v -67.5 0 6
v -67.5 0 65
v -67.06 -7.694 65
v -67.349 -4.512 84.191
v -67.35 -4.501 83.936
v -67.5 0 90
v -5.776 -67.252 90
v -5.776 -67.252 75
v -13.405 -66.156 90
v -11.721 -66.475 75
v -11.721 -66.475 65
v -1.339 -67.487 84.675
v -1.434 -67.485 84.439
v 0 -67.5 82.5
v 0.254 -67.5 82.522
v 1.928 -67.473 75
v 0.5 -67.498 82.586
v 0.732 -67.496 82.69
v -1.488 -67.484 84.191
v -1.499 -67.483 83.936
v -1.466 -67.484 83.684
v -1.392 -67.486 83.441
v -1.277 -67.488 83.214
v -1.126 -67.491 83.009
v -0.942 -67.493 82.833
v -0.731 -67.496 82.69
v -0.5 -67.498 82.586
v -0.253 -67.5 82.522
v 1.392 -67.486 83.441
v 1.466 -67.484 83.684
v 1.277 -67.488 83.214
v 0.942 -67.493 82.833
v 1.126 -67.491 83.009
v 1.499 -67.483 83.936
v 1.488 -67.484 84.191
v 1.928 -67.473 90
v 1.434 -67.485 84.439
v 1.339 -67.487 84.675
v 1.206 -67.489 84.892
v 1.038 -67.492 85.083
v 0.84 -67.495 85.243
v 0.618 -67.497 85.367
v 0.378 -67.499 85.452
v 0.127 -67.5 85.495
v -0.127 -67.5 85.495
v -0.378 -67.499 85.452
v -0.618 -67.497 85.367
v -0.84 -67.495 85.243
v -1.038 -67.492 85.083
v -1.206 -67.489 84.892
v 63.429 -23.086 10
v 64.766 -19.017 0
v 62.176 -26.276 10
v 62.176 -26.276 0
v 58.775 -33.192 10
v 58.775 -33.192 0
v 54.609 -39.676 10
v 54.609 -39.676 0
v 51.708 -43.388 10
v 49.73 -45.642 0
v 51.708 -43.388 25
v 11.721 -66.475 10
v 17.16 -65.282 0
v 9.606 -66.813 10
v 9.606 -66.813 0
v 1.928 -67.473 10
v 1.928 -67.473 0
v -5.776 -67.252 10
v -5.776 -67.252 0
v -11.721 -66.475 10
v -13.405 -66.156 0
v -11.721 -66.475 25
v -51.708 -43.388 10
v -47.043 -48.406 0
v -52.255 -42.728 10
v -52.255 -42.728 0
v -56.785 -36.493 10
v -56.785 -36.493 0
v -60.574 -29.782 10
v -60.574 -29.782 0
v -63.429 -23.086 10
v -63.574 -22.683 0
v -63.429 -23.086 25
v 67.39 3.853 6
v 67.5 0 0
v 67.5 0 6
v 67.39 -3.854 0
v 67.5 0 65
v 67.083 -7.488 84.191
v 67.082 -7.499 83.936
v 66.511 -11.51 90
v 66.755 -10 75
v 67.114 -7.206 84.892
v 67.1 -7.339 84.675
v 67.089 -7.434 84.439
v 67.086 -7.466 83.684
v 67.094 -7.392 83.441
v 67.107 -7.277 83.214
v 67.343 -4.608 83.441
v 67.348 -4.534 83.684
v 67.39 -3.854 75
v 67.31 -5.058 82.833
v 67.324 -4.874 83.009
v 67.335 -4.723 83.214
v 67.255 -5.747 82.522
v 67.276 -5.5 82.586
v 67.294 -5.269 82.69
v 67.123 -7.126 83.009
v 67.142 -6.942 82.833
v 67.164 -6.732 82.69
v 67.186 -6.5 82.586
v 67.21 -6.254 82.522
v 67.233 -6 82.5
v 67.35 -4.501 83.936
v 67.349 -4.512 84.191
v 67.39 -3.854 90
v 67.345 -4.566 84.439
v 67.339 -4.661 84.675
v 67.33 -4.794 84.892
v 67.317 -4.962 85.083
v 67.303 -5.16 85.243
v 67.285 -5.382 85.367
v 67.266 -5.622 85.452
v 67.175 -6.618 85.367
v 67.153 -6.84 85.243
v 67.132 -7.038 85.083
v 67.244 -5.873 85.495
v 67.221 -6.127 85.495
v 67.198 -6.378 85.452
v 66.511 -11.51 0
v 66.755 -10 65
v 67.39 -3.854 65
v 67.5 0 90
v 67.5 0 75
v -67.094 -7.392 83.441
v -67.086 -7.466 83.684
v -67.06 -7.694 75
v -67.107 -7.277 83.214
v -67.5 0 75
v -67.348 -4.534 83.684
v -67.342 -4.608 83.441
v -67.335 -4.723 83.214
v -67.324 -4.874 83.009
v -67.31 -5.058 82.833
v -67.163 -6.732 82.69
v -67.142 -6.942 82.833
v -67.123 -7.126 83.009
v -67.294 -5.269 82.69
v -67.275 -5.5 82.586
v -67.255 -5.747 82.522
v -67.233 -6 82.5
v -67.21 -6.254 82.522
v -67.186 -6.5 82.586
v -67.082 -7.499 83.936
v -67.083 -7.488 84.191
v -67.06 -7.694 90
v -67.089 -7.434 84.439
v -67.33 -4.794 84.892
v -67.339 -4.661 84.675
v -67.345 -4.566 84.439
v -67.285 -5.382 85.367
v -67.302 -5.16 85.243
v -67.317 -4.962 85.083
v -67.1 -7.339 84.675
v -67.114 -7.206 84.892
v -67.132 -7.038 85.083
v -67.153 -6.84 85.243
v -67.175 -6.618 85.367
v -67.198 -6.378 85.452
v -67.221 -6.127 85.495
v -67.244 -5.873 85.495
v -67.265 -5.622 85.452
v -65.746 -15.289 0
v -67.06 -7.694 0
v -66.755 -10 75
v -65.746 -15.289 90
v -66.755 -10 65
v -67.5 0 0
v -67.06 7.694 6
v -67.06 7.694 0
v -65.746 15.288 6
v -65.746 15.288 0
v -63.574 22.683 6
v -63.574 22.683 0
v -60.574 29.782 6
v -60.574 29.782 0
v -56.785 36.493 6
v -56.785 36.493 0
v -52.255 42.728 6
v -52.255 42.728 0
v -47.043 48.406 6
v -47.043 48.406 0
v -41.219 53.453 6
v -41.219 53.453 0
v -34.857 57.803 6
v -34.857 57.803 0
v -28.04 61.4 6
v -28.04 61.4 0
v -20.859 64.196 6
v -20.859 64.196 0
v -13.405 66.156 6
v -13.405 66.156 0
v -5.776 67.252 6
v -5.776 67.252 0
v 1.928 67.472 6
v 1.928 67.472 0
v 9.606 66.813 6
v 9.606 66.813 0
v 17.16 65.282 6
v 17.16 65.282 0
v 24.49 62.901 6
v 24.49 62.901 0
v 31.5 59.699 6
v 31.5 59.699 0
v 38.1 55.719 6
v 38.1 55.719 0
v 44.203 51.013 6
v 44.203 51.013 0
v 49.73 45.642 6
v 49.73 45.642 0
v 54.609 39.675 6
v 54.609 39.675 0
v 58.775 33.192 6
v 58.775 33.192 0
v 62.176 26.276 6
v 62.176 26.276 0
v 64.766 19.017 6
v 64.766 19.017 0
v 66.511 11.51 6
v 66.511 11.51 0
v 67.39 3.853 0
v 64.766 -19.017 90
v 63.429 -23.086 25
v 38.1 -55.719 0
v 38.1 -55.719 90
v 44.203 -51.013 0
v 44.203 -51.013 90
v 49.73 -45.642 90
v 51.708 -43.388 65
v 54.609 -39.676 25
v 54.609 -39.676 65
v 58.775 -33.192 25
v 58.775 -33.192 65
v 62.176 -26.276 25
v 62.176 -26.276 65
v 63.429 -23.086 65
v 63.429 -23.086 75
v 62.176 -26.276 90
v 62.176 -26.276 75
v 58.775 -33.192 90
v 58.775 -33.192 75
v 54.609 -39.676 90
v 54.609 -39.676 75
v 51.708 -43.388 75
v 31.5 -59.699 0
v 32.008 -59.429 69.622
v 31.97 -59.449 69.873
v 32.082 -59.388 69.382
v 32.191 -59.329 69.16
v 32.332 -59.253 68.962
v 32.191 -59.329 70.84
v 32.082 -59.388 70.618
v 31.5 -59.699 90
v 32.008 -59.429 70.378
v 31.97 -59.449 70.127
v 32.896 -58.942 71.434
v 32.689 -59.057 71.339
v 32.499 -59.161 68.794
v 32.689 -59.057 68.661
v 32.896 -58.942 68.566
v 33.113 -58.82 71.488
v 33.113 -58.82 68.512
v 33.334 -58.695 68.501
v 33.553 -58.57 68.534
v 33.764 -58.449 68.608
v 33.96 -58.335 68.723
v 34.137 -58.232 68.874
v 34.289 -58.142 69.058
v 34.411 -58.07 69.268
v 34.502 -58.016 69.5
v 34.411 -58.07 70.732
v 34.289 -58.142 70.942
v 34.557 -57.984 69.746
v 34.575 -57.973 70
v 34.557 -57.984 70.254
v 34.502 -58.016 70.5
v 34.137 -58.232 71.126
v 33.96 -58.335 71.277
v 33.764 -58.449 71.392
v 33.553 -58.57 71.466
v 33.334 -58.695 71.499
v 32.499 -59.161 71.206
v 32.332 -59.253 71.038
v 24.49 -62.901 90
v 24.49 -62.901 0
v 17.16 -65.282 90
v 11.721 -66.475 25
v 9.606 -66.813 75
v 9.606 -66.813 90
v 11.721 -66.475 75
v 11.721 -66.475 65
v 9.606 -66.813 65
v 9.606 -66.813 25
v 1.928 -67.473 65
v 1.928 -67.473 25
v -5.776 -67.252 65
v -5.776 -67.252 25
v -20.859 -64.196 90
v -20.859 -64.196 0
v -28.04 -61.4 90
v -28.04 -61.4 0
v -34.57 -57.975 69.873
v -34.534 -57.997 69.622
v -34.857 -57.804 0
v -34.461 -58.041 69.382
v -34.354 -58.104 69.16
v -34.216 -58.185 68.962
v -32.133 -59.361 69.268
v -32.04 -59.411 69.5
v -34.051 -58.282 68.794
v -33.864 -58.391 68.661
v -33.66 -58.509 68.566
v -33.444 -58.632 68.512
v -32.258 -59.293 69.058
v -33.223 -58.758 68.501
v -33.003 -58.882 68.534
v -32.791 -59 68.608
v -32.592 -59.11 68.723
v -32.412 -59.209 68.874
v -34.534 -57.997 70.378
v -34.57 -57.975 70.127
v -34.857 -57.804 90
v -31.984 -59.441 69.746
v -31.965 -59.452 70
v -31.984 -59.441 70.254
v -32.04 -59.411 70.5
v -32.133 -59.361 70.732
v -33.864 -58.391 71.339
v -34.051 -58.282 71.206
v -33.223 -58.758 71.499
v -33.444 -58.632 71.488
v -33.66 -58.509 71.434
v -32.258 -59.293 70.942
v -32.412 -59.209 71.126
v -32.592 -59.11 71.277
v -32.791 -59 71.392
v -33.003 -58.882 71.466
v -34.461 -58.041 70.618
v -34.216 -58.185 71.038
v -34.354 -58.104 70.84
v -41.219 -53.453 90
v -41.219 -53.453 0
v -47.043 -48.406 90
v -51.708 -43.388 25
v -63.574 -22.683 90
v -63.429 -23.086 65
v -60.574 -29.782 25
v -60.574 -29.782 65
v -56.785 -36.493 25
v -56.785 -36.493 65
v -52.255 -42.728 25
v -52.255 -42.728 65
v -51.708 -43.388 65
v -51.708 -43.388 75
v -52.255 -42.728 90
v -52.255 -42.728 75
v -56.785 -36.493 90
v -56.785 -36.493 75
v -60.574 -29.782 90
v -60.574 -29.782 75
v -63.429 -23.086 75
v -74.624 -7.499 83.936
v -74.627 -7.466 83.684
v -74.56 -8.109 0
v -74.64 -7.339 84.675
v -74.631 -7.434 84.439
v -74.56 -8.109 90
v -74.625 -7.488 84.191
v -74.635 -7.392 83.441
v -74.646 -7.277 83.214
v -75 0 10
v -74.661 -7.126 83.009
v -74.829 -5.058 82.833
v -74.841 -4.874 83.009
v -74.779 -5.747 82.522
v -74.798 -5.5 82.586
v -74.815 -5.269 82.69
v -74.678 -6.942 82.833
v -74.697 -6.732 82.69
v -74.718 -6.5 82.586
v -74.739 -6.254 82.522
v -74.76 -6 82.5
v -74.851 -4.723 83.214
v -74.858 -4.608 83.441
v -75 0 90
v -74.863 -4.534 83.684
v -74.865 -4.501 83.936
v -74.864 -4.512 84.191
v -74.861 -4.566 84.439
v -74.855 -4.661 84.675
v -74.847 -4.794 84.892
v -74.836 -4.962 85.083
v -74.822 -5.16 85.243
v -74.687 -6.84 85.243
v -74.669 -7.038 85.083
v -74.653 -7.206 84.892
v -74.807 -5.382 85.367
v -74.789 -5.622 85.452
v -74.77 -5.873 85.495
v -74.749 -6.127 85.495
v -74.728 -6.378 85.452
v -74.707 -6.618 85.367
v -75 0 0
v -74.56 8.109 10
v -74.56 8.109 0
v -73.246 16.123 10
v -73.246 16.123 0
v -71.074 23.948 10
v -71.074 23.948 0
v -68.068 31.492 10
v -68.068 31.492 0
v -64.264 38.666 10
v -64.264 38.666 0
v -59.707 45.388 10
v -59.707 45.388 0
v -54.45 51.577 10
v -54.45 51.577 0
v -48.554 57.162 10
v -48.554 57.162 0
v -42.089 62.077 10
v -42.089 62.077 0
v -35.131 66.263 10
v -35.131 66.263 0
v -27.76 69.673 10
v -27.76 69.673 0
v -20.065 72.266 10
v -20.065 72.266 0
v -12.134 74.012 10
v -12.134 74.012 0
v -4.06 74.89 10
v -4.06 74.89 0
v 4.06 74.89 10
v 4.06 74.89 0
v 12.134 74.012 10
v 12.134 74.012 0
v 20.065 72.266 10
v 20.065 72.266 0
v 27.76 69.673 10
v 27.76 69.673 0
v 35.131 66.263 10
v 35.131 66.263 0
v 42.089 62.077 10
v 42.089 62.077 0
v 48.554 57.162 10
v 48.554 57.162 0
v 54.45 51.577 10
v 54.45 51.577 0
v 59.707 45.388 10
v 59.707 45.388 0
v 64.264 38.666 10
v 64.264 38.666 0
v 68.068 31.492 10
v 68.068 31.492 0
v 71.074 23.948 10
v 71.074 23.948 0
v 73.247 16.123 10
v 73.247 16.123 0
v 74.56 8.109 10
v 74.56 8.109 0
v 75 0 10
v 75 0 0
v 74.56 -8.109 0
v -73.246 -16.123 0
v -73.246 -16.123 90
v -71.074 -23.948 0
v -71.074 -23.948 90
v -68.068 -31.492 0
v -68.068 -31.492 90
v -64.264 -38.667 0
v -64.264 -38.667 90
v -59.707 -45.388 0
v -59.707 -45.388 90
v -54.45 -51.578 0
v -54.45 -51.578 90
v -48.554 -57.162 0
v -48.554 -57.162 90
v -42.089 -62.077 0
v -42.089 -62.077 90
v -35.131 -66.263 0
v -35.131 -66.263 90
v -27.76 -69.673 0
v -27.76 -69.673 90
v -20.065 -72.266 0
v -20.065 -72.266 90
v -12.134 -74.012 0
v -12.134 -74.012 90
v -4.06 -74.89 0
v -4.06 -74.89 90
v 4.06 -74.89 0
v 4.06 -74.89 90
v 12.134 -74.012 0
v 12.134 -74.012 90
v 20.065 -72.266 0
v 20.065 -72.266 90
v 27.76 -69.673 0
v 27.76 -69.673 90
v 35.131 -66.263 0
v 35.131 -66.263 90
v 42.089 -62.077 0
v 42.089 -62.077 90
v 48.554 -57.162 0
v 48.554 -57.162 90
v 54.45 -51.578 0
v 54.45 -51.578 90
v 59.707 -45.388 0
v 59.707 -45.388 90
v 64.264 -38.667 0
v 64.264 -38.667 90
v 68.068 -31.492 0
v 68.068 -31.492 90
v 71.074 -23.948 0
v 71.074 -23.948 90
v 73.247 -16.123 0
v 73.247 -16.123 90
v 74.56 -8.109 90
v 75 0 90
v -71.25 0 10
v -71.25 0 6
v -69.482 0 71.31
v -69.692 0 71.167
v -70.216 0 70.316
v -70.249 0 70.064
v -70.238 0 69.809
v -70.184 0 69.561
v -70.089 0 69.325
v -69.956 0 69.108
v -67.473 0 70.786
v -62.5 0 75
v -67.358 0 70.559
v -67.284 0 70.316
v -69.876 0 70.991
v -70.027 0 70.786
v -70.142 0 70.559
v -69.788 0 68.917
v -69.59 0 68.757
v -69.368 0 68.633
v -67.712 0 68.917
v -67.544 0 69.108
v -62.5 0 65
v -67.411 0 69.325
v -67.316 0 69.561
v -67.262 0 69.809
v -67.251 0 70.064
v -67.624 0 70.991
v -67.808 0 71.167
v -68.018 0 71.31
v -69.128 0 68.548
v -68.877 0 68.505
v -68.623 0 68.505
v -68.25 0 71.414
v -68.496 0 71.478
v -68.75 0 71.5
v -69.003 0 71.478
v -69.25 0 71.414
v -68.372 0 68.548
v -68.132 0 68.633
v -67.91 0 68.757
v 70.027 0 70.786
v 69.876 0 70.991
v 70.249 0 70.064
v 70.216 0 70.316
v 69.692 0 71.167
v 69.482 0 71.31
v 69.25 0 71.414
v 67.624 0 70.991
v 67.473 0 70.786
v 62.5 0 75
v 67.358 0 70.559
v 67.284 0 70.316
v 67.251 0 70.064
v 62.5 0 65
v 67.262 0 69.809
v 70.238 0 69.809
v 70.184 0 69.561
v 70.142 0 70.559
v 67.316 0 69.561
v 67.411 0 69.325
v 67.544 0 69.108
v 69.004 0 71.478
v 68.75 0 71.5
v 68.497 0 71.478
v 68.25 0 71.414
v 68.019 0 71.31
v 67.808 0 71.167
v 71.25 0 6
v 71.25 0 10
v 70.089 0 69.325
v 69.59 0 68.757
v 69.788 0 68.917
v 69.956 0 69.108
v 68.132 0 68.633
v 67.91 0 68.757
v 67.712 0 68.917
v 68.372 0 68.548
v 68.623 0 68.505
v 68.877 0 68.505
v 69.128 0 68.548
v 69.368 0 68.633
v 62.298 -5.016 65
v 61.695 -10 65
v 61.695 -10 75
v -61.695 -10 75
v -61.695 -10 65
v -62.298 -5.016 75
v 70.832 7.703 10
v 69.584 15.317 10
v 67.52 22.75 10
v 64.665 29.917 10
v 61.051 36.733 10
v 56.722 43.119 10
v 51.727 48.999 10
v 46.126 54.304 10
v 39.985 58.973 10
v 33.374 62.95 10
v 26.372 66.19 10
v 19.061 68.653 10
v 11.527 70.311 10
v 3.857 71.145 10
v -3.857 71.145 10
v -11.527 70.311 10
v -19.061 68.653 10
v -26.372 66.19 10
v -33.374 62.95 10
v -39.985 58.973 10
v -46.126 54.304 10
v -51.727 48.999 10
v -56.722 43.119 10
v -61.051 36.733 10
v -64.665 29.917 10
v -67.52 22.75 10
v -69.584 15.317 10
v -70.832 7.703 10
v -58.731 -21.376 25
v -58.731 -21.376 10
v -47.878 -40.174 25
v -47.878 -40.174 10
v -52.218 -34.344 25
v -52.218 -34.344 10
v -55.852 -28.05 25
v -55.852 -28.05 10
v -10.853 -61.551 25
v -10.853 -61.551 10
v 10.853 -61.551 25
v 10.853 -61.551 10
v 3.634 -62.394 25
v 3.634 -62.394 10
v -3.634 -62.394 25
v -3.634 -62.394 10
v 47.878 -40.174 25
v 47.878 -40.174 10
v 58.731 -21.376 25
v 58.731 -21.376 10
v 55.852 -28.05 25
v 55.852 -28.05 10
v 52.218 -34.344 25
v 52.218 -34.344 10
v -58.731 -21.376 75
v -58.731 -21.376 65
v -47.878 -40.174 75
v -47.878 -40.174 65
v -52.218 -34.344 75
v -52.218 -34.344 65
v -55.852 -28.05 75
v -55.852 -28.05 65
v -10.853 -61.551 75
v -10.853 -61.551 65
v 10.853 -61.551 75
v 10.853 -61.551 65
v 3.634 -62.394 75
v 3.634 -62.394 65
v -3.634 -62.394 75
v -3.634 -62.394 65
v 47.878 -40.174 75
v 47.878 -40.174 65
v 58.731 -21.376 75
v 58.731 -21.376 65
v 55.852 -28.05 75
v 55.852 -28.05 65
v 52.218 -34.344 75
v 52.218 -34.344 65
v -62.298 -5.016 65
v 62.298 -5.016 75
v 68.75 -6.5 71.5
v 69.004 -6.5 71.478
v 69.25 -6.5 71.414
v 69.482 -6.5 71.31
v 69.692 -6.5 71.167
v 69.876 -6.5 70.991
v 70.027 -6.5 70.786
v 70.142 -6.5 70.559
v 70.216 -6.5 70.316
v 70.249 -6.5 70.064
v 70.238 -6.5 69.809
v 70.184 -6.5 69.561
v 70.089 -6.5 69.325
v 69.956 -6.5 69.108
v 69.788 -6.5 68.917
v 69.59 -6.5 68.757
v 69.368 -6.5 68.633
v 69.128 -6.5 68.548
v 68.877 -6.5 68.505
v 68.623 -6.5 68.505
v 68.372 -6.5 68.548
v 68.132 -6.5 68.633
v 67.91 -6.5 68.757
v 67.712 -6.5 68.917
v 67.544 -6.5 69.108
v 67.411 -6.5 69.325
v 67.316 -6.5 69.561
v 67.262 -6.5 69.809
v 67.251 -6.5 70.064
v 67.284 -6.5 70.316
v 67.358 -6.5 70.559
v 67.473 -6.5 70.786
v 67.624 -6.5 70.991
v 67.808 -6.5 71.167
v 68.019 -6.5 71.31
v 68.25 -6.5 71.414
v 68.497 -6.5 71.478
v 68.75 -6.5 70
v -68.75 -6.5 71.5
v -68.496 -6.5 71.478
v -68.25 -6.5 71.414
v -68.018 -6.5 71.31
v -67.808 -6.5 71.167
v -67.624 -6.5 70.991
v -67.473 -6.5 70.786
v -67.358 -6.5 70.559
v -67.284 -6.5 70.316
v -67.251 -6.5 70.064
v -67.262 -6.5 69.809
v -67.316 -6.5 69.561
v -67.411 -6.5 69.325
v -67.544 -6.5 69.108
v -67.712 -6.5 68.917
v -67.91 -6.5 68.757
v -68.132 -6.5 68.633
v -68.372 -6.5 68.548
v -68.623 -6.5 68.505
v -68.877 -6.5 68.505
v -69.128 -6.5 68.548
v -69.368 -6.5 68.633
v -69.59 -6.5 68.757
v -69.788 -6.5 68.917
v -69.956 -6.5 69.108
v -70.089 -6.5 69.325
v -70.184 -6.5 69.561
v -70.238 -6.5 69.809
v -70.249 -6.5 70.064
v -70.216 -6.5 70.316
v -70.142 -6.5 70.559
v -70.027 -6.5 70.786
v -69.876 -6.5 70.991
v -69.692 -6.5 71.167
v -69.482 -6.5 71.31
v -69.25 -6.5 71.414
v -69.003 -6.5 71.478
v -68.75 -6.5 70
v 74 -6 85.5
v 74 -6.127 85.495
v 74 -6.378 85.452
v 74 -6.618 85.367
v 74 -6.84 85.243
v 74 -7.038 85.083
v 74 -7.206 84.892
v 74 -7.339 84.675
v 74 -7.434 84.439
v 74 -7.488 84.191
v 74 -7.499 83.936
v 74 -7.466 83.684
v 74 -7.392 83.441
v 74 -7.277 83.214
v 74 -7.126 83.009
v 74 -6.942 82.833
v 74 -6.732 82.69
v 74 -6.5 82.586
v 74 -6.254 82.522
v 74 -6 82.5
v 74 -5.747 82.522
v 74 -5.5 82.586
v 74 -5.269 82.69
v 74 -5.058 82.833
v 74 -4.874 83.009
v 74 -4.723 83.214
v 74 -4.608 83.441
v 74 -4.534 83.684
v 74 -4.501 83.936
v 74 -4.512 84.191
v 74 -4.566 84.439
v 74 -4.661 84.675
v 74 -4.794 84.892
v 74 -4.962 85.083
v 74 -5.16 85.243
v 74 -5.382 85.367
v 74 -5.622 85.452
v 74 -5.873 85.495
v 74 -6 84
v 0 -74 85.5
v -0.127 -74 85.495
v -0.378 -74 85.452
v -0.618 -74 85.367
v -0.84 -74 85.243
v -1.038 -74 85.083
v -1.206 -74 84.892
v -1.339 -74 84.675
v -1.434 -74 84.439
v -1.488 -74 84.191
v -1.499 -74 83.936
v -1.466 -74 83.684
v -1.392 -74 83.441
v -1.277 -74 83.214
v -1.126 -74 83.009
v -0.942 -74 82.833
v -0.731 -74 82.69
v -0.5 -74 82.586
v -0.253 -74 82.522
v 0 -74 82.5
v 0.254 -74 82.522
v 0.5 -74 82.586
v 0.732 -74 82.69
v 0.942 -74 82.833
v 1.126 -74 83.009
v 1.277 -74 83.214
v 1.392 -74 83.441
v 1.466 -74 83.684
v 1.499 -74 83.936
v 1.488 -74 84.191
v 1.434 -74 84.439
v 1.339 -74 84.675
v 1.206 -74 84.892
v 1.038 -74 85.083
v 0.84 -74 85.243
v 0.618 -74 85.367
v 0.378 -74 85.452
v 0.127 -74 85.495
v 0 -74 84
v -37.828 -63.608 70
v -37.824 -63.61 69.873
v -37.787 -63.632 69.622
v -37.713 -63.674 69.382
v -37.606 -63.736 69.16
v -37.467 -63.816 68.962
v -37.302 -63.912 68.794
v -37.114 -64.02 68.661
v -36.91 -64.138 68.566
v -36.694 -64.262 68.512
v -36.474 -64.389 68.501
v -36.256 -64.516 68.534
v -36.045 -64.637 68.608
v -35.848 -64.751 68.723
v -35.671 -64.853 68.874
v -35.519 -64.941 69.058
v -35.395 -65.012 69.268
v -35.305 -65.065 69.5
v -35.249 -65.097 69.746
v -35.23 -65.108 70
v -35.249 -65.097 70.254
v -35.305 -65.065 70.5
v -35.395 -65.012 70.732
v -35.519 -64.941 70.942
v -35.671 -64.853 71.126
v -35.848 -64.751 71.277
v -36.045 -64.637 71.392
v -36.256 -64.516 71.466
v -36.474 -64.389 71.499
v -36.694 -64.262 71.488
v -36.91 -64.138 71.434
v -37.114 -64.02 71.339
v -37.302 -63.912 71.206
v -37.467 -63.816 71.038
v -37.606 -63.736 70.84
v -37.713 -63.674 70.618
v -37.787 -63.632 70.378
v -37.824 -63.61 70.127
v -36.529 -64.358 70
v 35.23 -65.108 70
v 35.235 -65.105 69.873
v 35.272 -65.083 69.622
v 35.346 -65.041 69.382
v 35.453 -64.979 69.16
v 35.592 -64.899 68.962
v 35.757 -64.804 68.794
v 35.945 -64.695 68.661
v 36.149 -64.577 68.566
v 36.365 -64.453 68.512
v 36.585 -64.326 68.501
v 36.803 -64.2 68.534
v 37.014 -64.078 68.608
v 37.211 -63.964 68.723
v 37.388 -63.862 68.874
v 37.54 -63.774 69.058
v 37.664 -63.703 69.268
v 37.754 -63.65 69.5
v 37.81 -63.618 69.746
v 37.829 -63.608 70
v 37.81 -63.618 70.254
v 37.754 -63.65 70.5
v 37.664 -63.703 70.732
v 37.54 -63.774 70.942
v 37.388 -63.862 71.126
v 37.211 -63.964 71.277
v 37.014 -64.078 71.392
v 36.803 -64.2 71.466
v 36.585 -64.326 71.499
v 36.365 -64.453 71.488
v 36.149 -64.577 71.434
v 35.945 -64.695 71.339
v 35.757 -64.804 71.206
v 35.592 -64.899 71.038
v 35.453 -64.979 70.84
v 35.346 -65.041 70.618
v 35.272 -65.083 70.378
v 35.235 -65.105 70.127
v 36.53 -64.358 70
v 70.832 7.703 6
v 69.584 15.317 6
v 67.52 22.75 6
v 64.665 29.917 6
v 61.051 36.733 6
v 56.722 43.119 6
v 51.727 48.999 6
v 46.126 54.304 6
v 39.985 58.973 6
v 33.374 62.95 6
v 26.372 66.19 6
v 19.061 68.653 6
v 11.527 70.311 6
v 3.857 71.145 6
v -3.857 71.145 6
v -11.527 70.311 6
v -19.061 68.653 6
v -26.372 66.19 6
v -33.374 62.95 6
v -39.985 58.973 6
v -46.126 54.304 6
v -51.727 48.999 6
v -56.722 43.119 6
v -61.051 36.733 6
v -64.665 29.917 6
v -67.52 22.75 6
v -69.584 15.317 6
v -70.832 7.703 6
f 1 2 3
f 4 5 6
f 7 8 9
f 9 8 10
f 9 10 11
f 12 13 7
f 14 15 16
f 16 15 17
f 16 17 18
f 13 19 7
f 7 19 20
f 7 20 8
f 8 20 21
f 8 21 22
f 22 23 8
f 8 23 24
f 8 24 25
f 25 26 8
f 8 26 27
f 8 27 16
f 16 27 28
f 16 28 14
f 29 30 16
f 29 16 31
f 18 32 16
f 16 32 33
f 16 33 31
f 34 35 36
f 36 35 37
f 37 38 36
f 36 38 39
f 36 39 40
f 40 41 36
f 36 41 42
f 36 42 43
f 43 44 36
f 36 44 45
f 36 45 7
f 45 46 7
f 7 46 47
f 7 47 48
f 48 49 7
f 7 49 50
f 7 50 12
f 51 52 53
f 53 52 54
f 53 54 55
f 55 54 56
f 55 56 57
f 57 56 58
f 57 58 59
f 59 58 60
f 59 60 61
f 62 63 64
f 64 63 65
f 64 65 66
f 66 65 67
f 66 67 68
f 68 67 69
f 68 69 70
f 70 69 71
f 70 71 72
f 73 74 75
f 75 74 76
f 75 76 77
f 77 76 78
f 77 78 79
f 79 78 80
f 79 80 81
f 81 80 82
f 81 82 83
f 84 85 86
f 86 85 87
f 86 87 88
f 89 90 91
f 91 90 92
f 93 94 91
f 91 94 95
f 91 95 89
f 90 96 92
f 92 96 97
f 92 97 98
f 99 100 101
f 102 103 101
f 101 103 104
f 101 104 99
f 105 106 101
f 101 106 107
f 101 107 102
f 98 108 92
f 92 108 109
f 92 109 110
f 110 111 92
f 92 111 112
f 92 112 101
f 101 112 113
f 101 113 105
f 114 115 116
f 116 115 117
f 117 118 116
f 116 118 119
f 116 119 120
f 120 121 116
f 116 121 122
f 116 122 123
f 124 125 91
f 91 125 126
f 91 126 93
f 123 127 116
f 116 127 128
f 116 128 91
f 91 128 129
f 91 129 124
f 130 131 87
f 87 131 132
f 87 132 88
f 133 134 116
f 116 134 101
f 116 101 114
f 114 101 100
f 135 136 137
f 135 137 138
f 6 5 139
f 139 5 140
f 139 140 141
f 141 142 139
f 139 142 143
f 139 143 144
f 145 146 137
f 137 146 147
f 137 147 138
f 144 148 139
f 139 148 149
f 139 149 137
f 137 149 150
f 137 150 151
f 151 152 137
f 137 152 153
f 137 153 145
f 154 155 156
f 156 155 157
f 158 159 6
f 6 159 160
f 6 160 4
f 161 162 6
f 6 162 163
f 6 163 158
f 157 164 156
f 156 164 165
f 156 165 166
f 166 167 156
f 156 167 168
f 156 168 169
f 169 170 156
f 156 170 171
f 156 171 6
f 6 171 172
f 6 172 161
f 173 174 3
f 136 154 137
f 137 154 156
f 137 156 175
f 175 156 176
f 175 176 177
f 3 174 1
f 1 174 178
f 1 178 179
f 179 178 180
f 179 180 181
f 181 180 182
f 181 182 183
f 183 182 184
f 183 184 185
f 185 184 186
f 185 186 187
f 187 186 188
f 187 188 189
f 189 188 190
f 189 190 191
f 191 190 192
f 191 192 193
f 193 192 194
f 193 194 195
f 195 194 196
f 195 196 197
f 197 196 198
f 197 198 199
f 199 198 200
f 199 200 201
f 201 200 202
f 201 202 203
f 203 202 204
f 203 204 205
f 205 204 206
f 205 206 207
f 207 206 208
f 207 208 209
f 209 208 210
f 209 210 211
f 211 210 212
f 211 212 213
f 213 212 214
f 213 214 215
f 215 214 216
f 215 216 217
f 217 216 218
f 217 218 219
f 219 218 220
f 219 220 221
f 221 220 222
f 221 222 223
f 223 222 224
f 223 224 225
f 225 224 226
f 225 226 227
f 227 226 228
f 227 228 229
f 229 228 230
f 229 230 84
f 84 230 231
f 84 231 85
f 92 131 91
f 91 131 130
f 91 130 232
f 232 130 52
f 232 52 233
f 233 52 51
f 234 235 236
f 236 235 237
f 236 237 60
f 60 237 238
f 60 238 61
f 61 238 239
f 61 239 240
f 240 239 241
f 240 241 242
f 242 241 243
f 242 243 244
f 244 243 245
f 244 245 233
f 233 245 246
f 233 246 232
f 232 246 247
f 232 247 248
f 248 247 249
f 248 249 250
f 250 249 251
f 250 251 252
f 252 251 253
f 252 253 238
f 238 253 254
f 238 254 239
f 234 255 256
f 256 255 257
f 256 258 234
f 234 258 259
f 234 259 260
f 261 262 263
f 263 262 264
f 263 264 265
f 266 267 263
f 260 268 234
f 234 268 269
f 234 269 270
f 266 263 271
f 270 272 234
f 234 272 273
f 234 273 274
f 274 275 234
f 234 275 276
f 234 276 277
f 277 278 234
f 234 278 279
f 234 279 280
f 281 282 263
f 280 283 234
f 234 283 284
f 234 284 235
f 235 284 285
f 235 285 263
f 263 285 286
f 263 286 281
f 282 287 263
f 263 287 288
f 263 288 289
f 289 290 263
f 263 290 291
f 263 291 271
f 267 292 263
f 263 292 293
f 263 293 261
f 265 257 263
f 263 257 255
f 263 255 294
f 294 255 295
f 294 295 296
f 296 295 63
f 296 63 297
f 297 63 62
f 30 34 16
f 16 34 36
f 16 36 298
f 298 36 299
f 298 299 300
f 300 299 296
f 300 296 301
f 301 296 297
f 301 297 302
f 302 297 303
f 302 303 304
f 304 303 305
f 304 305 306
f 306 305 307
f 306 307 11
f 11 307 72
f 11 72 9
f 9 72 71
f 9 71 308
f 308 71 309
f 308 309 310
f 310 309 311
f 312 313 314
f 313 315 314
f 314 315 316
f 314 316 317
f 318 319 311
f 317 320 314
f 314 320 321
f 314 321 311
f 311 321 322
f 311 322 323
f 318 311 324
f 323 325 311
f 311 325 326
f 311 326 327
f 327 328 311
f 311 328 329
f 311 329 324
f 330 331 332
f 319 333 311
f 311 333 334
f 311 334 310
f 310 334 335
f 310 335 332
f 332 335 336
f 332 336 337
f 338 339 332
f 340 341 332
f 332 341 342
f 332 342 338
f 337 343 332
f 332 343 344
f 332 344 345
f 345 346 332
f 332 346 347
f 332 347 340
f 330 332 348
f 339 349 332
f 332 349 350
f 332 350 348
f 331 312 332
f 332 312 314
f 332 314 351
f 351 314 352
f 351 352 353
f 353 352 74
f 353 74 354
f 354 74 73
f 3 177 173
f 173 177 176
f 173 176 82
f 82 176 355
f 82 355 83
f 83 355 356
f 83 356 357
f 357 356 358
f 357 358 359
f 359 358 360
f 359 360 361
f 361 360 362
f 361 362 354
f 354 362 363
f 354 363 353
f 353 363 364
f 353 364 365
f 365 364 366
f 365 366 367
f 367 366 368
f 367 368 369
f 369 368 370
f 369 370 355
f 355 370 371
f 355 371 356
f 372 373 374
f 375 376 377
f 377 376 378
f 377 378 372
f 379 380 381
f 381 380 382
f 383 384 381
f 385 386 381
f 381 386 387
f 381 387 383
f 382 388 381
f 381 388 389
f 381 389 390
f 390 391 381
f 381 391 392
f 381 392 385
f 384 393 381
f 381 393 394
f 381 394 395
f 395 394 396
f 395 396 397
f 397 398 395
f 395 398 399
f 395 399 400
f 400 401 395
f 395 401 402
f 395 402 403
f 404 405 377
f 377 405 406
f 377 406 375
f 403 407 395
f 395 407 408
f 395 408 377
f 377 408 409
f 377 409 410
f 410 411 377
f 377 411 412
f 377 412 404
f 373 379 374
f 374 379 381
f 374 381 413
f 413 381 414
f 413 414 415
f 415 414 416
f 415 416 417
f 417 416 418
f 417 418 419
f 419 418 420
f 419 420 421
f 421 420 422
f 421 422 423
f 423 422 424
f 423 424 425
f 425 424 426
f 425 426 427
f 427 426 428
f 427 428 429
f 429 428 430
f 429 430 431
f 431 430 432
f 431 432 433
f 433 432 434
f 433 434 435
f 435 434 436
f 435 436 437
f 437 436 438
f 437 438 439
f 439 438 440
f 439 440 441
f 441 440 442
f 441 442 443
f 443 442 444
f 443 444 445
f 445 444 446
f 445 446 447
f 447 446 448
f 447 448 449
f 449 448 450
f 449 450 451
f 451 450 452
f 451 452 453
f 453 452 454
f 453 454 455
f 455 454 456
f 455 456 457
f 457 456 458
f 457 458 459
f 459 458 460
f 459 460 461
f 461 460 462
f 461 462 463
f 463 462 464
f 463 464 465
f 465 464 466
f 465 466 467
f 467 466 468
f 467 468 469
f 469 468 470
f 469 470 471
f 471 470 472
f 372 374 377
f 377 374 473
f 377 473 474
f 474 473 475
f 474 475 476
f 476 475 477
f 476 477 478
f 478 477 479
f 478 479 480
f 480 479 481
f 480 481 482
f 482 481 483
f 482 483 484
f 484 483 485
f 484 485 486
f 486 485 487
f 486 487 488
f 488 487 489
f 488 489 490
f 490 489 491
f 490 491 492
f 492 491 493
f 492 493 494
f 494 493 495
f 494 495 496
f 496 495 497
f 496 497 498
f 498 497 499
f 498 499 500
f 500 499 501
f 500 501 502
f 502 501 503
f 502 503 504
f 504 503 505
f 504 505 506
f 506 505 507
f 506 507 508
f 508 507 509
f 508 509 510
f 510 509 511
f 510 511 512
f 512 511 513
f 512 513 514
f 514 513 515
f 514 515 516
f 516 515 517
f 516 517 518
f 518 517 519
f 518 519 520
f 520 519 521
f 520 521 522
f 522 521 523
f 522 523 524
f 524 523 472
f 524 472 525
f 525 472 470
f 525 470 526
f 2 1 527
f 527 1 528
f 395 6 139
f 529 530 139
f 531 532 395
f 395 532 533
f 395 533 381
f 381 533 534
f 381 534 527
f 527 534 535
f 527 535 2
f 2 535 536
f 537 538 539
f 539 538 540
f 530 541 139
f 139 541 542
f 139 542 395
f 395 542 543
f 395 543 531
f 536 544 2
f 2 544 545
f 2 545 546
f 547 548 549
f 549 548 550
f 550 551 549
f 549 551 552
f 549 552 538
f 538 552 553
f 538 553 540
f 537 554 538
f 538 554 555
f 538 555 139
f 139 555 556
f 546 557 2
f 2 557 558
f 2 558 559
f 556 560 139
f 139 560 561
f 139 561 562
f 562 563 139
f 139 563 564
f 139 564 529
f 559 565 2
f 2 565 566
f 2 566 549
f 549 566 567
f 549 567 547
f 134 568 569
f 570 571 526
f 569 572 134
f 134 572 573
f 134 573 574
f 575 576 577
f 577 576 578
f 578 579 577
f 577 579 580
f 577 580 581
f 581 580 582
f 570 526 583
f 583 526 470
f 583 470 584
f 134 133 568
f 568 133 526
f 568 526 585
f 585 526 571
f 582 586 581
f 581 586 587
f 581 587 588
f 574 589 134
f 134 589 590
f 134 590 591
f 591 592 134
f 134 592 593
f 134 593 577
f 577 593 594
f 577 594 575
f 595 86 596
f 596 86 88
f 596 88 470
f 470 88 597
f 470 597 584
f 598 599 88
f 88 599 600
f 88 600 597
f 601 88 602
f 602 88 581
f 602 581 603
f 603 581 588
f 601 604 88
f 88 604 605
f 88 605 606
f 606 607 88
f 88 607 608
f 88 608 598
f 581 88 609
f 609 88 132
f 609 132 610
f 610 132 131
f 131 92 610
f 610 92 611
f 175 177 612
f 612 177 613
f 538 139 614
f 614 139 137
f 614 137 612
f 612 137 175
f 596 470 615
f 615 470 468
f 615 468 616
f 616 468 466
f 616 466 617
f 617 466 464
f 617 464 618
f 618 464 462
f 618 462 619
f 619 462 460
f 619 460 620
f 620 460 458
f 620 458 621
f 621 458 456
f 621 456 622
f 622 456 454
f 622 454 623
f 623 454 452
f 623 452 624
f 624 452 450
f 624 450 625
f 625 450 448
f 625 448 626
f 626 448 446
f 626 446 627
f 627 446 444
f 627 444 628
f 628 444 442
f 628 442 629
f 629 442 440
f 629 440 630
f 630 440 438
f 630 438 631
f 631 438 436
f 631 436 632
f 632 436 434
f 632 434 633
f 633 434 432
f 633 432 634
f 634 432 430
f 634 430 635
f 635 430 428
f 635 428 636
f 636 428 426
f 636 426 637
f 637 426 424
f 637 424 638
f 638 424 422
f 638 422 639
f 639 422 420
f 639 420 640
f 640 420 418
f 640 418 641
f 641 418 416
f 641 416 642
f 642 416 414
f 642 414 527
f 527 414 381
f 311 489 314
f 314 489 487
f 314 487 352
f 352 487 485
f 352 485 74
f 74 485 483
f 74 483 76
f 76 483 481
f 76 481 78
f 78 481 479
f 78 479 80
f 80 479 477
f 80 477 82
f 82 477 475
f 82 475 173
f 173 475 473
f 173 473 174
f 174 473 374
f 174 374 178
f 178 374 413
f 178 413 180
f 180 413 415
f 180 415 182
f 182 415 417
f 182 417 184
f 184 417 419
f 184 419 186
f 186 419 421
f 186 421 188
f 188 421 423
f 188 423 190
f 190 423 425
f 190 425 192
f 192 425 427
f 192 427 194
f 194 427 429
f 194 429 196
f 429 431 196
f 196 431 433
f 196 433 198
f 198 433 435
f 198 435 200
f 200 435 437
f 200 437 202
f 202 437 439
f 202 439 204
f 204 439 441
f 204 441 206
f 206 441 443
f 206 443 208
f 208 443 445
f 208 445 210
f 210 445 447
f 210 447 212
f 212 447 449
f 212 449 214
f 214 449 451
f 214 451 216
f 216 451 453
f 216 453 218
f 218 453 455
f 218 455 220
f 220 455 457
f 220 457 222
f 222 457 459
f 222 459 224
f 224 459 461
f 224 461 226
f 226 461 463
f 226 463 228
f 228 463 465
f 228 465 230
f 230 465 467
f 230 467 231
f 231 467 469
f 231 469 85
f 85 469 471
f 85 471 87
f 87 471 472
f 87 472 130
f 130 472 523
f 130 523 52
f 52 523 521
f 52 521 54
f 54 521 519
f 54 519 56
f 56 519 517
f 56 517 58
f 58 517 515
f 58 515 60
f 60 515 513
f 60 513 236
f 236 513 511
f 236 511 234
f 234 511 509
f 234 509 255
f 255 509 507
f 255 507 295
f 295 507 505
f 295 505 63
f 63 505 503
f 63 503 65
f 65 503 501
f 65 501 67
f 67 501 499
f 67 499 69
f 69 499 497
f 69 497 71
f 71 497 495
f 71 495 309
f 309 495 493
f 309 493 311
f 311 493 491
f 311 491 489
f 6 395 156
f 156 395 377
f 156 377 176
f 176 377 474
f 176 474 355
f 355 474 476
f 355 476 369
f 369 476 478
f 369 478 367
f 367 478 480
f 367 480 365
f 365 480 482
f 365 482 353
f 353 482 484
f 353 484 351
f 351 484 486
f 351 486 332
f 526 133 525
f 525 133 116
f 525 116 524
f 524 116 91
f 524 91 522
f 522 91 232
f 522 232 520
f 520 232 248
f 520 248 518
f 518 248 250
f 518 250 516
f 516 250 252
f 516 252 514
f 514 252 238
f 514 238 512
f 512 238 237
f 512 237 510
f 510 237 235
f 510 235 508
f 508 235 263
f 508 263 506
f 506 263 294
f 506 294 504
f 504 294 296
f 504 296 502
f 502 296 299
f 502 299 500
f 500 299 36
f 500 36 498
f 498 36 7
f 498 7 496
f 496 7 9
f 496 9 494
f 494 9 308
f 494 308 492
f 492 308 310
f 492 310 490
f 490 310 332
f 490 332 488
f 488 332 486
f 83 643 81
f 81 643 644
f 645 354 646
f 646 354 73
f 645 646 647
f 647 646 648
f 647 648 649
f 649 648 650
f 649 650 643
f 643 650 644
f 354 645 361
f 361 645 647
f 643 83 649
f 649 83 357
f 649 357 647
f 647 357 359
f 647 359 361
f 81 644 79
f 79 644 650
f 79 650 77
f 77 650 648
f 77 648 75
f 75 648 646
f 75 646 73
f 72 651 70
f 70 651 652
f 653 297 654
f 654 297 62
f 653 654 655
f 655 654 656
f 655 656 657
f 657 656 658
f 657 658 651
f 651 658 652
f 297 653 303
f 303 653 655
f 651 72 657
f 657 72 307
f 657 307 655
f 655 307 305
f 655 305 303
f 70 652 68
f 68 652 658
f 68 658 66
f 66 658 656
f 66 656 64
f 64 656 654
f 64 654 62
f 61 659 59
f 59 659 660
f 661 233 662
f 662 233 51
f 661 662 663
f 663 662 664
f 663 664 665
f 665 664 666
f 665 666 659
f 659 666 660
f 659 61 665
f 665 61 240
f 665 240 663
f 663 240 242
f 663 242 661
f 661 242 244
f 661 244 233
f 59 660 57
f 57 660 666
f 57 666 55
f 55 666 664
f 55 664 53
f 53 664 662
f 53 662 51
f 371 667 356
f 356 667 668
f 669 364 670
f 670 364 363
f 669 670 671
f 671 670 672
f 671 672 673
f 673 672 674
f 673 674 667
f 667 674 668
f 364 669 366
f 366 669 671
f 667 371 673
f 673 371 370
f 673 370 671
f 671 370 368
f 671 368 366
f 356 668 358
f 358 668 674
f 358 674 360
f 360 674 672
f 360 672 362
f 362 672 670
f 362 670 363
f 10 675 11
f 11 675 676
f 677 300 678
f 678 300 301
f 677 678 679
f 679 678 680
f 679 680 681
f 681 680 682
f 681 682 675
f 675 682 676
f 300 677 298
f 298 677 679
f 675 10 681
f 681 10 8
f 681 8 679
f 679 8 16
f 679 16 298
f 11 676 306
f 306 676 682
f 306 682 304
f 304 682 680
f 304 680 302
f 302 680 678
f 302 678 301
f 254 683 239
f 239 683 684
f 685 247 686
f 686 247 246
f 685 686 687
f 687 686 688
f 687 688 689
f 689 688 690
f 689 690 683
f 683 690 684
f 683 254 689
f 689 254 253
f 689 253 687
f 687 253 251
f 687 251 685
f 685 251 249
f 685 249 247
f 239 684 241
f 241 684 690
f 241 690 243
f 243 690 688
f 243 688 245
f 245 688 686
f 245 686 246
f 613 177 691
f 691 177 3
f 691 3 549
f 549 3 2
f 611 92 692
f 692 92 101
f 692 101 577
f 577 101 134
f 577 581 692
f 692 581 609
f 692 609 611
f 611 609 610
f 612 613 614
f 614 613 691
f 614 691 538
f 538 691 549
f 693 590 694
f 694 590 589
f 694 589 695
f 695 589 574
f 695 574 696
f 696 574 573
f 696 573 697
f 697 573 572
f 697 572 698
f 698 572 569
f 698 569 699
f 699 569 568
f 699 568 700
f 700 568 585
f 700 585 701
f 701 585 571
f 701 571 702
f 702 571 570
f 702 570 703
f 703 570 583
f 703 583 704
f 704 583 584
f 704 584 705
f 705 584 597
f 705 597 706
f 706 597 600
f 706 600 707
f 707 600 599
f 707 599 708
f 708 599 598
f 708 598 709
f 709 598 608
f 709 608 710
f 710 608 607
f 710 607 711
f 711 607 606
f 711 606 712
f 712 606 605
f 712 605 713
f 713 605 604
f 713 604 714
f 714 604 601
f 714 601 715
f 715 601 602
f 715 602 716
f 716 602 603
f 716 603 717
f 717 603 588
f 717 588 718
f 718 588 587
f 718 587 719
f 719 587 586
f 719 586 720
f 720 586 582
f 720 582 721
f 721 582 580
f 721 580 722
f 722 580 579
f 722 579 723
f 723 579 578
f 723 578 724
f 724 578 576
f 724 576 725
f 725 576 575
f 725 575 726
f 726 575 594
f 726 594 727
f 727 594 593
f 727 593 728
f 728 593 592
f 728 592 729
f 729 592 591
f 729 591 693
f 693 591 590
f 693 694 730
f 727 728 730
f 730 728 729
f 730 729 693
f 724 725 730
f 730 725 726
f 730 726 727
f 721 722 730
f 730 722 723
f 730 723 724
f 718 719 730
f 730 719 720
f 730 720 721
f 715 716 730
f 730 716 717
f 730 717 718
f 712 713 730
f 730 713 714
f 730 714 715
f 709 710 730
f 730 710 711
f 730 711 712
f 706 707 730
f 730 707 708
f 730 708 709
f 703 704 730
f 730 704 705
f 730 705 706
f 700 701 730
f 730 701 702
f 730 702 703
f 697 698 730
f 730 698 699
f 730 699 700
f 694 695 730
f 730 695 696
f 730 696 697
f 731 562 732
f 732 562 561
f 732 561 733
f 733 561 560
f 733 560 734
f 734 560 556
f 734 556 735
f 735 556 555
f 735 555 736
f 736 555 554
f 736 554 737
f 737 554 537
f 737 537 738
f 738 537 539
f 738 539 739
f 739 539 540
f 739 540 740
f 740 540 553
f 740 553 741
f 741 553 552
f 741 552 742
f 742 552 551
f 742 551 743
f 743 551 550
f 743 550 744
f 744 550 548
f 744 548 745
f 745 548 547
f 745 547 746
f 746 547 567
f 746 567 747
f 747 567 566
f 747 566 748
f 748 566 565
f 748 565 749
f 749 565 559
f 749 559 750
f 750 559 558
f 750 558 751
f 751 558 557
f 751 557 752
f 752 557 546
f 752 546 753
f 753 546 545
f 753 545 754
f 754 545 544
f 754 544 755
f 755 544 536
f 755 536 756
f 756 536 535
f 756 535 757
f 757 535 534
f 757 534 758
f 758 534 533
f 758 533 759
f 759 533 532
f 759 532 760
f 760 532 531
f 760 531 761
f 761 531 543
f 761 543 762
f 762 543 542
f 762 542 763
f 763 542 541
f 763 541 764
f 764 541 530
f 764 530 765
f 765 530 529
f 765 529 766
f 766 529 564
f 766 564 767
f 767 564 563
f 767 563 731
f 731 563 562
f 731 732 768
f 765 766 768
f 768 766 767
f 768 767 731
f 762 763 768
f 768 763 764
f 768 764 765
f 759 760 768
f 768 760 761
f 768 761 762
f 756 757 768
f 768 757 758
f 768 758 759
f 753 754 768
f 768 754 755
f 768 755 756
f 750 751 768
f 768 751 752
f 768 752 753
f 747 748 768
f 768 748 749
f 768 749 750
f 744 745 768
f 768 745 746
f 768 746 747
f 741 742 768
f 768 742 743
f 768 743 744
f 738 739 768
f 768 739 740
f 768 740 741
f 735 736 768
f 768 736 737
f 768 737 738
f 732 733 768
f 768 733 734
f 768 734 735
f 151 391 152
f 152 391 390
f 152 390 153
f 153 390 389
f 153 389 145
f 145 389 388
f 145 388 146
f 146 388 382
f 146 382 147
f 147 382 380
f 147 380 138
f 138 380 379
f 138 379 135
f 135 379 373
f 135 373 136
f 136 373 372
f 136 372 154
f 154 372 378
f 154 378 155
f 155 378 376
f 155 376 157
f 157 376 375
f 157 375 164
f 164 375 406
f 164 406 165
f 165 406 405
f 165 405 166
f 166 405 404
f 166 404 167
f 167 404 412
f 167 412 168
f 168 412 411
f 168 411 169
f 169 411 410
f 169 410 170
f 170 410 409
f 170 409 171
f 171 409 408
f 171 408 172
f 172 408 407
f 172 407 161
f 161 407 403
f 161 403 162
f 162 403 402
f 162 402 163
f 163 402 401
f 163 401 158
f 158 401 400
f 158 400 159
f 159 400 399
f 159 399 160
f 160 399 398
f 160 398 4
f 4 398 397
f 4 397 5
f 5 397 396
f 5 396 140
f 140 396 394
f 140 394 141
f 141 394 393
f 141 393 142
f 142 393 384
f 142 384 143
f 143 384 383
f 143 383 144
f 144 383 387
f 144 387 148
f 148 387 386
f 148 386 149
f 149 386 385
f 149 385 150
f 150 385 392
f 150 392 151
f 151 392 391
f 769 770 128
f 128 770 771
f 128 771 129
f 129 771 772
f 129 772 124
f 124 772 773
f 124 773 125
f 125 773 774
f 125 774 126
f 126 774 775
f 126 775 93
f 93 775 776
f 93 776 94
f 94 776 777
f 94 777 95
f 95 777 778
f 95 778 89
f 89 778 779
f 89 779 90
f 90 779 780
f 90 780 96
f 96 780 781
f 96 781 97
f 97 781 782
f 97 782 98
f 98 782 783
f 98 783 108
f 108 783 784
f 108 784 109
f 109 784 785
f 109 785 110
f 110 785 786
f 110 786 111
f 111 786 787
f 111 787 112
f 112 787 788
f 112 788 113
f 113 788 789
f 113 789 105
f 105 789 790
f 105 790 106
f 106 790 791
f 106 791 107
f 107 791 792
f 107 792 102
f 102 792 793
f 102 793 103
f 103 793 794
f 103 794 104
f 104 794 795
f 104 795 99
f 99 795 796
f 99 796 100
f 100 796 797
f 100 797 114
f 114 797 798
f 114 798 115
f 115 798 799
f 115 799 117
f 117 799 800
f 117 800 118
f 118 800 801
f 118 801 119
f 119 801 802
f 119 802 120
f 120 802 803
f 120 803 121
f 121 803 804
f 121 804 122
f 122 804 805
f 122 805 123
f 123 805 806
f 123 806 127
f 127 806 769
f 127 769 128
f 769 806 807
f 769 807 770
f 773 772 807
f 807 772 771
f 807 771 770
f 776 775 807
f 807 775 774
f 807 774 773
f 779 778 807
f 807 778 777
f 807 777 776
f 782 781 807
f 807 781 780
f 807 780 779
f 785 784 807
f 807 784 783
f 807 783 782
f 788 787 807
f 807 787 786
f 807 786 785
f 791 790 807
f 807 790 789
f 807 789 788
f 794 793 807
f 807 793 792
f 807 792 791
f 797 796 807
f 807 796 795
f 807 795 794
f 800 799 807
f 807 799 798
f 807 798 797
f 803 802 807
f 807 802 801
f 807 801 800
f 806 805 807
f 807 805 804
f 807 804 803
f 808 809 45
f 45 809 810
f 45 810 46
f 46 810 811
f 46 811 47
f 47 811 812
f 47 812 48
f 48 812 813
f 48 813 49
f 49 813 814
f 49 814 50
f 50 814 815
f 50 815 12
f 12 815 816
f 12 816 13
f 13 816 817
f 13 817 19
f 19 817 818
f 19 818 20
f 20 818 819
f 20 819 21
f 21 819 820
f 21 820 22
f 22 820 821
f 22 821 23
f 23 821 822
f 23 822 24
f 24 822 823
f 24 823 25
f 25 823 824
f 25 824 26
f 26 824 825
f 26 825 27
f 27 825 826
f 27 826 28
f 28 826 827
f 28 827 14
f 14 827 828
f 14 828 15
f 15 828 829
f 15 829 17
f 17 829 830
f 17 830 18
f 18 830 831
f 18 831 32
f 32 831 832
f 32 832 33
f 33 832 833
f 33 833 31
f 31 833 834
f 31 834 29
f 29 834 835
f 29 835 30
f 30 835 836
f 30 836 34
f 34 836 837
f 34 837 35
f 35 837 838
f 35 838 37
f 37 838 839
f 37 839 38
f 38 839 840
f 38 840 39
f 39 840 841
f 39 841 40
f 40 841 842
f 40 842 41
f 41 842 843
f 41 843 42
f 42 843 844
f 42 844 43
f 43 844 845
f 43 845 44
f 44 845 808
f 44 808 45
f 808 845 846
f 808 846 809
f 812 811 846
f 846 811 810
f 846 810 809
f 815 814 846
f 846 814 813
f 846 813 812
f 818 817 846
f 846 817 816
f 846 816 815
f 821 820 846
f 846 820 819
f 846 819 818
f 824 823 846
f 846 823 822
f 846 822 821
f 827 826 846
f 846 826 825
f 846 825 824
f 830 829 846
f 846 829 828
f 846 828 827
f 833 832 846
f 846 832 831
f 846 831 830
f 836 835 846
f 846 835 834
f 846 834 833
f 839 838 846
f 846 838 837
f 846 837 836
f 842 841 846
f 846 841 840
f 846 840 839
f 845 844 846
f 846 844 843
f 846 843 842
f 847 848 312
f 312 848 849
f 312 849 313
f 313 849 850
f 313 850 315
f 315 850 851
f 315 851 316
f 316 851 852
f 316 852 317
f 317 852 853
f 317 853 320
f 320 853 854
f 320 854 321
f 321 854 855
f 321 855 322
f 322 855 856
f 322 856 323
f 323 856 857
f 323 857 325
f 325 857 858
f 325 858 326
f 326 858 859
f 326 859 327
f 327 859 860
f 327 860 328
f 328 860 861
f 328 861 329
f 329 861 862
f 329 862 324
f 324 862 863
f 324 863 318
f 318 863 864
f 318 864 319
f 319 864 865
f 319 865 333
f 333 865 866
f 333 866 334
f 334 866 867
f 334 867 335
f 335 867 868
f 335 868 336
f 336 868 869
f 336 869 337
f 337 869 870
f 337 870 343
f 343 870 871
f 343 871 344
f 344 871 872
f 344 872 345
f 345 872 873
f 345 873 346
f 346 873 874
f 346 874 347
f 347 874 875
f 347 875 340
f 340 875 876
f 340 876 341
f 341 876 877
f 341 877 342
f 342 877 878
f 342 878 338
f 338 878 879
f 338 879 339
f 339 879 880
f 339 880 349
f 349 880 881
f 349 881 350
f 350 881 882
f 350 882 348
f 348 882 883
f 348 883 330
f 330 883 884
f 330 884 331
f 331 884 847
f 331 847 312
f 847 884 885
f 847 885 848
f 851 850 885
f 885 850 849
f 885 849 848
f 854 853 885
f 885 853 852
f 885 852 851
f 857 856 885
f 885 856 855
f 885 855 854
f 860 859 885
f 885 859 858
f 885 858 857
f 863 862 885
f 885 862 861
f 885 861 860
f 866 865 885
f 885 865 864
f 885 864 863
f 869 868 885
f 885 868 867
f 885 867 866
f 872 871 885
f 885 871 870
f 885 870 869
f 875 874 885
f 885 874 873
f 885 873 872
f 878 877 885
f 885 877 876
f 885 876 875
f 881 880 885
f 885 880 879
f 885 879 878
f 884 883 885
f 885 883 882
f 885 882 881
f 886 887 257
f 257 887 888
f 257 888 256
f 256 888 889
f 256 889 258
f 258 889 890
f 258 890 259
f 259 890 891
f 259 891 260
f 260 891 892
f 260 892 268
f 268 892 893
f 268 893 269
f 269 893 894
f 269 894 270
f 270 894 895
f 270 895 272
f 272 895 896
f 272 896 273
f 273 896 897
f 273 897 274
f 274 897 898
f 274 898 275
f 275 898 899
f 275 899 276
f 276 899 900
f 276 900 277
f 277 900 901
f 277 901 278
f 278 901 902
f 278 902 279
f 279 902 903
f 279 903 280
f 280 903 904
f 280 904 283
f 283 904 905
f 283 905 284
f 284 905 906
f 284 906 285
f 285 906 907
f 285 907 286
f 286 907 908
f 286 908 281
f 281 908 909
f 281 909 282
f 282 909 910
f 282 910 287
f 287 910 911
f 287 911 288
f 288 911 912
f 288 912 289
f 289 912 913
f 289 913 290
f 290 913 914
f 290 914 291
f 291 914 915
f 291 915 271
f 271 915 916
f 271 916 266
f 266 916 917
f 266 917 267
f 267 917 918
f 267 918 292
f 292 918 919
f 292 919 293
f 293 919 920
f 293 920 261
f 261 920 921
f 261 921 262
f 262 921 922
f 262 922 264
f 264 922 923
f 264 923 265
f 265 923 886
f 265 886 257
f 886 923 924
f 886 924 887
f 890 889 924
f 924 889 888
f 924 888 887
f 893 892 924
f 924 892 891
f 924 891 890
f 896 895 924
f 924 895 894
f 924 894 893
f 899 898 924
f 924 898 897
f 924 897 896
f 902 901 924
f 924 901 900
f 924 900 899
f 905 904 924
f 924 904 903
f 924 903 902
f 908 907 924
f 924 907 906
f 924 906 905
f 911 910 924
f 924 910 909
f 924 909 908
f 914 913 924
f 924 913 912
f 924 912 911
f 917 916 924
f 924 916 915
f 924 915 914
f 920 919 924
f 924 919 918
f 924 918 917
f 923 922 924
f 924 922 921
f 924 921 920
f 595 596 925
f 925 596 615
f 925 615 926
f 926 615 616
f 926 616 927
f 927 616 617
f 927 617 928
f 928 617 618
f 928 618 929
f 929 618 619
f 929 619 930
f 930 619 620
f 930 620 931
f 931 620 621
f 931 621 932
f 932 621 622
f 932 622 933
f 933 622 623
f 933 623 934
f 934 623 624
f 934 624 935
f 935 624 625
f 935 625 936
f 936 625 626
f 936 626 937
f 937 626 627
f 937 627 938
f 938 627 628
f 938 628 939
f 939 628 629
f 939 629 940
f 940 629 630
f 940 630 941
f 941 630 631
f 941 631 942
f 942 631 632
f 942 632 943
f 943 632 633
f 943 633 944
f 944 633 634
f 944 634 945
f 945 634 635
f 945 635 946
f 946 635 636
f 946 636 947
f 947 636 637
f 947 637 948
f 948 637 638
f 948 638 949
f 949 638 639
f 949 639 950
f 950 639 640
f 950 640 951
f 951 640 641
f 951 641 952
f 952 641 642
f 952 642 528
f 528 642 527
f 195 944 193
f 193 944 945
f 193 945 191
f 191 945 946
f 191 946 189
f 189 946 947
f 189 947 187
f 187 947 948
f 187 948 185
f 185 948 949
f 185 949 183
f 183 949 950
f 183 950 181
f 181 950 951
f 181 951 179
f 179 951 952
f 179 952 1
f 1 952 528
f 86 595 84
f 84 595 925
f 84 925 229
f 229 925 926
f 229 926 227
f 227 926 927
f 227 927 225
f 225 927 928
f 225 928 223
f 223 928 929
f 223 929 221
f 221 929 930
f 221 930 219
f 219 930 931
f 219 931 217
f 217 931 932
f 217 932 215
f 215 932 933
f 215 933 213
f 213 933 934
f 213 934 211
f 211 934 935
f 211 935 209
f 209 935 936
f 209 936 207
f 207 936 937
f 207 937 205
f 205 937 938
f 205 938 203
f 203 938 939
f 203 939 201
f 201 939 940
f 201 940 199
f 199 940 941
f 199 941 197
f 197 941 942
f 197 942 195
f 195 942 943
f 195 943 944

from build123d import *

# Parameters (mm, degrees)
SKETCH2_R               = 75
SKETCH2_R_2             = 67.5
BOSS_EXTRUDE2_DEPTH     = 10
BOSS_EXTRUDE3_DEPTH     = 80
BOSS_EXTRUDE4_DEPTH     = 15
BOSS_EXTRUDE5_DEPTH     = 10
SKETCH7_W               = 10
SKETCH7_H               = 10
BOSS_EXTRUDE6_DEPTH     = 137
SKETCH8_R               = 62.5
CUT_EXTRUDE1_DEPTH      = 150
SKETCH9_R               = 1.5
CUT_EXTRUDE2_DEPTH      = 6.5
CUT_EXTRUDE3_DEPTH      = 152.5
CUT_EXTRUDE3_DEPTH_BACK = 6.5
SKETCH10_R              = 1.5
CUT_EXTRUDE4_DEPTH      = 6.5
CUT_EXTRUDE4_DEPTH_BACK = 6.5
SKETCH12_R              = 1.5
CUT_EXTRUDE5_DEPTH      = 6.5
CUT_EXTRUDE5_DEPTH_BACK = 6.5
SKETCH13_R              = 1.5
CUT_EXTRUDE6_DEPTH      = 6.5
CUT_EXTRUDE6_DEPTH_BACK = 6.5
SKETCH14_R              = 1.5
CUT_EXTRUDE7_START      = -4
CUT_EXTRUDE7_DEPTH      = 4


with BuildPart() as part:
    # Sketch2 → Boss-Extrude2 (new body)
    with BuildSketch(Plane.XY):
        Circle(SKETCH2_R)
        Circle(SKETCH2_R_2, mode=Mode.SUBTRACT)
    extrude(amount=BOSS_EXTRUDE2_DEPTH)

    # Sketch3 → Boss-Extrude3 (add)
    with BuildSketch(Plane.XY.offset(10)):
        with BuildLine():
            Line((75, 0), (67.5, 0))
            ThreePointArc((67.5, 0), (0, -67.5), (-67.5, 0))
            Line((-67.5, 0), (-75, 0))
            ThreePointArc((-75, 0), (0, -75), (75, 0))
        make_face()
    extrude(amount=BOSS_EXTRUDE3_DEPTH)

    # Sketch5 → Boss-Extrude4 (add)
    with BuildSketch(Plane.XY.offset(10)):
        with BuildLine():
            ThreePointArc((-47.877777695, -40.174225605), (-54.126587737, -31.25), (-58.730788799, -21.376258958))
            Line((-58.730788799, -21.376258958), (-63.429251903, -23.086359674))
            ThreePointArc((-63.429251903, -23.086359674), (-58.456714755, -33.75), (-51.707999911, -43.388163654))
            Line((-51.707999911, -43.388163654), (-47.877777695, -40.174225605))
        make_face()
        with BuildLine():
            Line((63.429251903, -23.086359674), (58.730788799, -21.376258958))
            ThreePointArc((58.730788799, -21.376258958), (54.126587737, -31.25), (47.877777695, -40.174225605))
            Line((47.877777695, -40.174225605), (51.707999911, -43.388163654))
            ThreePointArc((51.707999911, -43.388163654), (58.456714755, -33.75), (63.429251903, -23.086359674))
        make_face()
        with BuildLine():
            ThreePointArc((10.853011104, -61.550484563), (0, -62.5), (-10.853011104, -61.550484563))
            Line((-10.853011104, -61.550484563), (-11.721251993, -66.474523328))
            ThreePointArc((-11.721251993, -66.474523328), (0, -67.5), (11.721251993, -66.474523328))
            Line((11.721251993, -66.474523328), (10.853011104, -61.550484563))
        make_face()
    extrude(amount=BOSS_EXTRUDE4_DEPTH)

    # Sketch6 → Boss-Extrude5 (add)
    with BuildSketch(Plane.XY.offset(65)):
        with BuildLine():
            ThreePointArc((-47.877777695, -40.174225605), (-54.126587737, -31.25), (-58.730788799, -21.376258958))
            Line((-58.730788799, -21.376258958), (-63.429251903, -23.086359674))
            ThreePointArc((-63.429251903, -23.086359674), (-58.456714755, -33.75), (-51.707999911, -43.388163654))
            Line((-51.707999911, -43.388163654), (-47.877777695, -40.174225605))
        make_face()
        with BuildLine():
            Line((63.429251903, -23.086359674), (58.730788799, -21.376258958))
            ThreePointArc((58.730788799, -21.376258958), (54.126587737, -31.25), (47.877777695, -40.174225605))
            Line((47.877777695, -40.174225605), (51.707999911, -43.388163654))
            ThreePointArc((51.707999911, -43.388163654), (58.456714755, -33.75), (63.429251903, -23.086359674))
        make_face()
        with BuildLine():
            ThreePointArc((10.853011104, -61.550484563), (0, -62.5), (-10.853011104, -61.550484563))
            Line((-10.853011104, -61.550484563), (-11.721251993, -66.474523328))
            ThreePointArc((-11.721251993, -66.474523328), (0, -67.5), (11.721251993, -66.474523328))
            Line((11.721251993, -66.474523328), (10.853011104, -61.550484563))
        make_face()
    extrude(amount=BOSS_EXTRUDE5_DEPTH)

    # Sketch7 → Boss-Extrude6 (add)
    with BuildSketch(Plane.ZY.offset(-67.5)):
        with Locations((70, -5)):
            Rectangle(SKETCH7_W, SKETCH7_H)
    extrude(amount=BOSS_EXTRUDE6_DEPTH)

    # Sketch8 → Cut-Extrude1 (cut)
    with BuildSketch(Plane.XY.offset(10)):
        Circle(SKETCH8_R)
    extrude(amount=CUT_EXTRUDE1_DEPTH, mode=Mode.SUBTRACT)

    # Sketch9 → Cut-Extrude2 (cut)
    with BuildSketch(Plane(origin=(0, 0, 0), x_dir=(1, 0, 0), z_dir=(0, 1, 0))):
        with Locations((-68.75, -70)):
            Circle(SKETCH9_R)
        with Locations((68.75, -70)):
            Circle(SKETCH9_R)
    extrude(amount=-CUT_EXTRUDE2_DEPTH, mode=Mode.SUBTRACT)

    # Sketch10 → Cut-Extrude3 (cut, two sides: drawn at the far end of the back side and taken through both)
    with BuildSketch(Plane.ZY.offset(-67.5).offset(-CUT_EXTRUDE3_DEPTH_BACK)):
        with Locations((84, -6)):
            Circle(SKETCH10_R)
    extrude(amount=CUT_EXTRUDE3_DEPTH + CUT_EXTRUDE3_DEPTH_BACK, mode=Mode.SUBTRACT)

    # Sketch12 → Cut-Extrude4 (cut, two sides: drawn at the far end of the back side and taken through both)
    with BuildSketch(Plane(origin=(0, -67.5, 0), x_dir=(1, 0, 0), z_dir=(0, 1, 0)).offset(-CUT_EXTRUDE4_DEPTH_BACK)):
        with Locations((0, -84)):
            Circle(SKETCH12_R)
    extrude(amount=CUT_EXTRUDE4_DEPTH + CUT_EXTRUDE4_DEPTH_BACK, mode=Mode.SUBTRACT)

    # Sketch13 → Cut-Extrude5 (cut, two sides: drawn at the far end of the back side and taken through both)
    with BuildSketch(Plane(origin=(-33.75, -58.456714755, 0), x_dir=(0.8660254037844395, -0.4999999999999986, 0), z_dir=(0.4999999999999986, 0.8660254037844395, 0)).offset(-CUT_EXTRUDE5_DEPTH_BACK)):
        with Locations((0.543285245, -70)):
            Circle(SKETCH13_R)
    extrude(amount=CUT_EXTRUDE5_DEPTH + CUT_EXTRUDE5_DEPTH_BACK, mode=Mode.SUBTRACT)

    # Sketch14 → Cut-Extrude6 (cut, two sides: drawn at the far end of the back side and taken through both)
    with BuildSketch(Plane(origin=(33.75, -58.456714755, 0), x_dir=(0.8660254037844367, 0.5000000000000034, 0), z_dir=(-0.5000000000000033, 0.8660254037844366, 0)).offset(-CUT_EXTRUDE6_DEPTH_BACK)):
        with Locations((-0.543285245, -70)):
            Circle(SKETCH14_R)
    extrude(amount=CUT_EXTRUDE6_DEPTH + CUT_EXTRUDE6_DEPTH_BACK, mode=Mode.SUBTRACT)

    # Sketch15 → Cut-Extrude7 (cut)
    with BuildSketch(Plane.XY.offset(10).offset(CUT_EXTRUDE7_START)):
        with BuildLine():
            ThreePointArc((71.25, 0), (0, 71.25), (-71.25, 0))
            Line((-71.25, 0), (-67.5, 0))
            ThreePointArc((-67.5, 0), (0, 67.5), (67.5, 0))
            Line((67.5, 0), (71.25, 0))
        make_face()
    extrude(amount=CUT_EXTRUDE7_DEPTH, mode=Mode.SUBTRACT)


solid = part.part
